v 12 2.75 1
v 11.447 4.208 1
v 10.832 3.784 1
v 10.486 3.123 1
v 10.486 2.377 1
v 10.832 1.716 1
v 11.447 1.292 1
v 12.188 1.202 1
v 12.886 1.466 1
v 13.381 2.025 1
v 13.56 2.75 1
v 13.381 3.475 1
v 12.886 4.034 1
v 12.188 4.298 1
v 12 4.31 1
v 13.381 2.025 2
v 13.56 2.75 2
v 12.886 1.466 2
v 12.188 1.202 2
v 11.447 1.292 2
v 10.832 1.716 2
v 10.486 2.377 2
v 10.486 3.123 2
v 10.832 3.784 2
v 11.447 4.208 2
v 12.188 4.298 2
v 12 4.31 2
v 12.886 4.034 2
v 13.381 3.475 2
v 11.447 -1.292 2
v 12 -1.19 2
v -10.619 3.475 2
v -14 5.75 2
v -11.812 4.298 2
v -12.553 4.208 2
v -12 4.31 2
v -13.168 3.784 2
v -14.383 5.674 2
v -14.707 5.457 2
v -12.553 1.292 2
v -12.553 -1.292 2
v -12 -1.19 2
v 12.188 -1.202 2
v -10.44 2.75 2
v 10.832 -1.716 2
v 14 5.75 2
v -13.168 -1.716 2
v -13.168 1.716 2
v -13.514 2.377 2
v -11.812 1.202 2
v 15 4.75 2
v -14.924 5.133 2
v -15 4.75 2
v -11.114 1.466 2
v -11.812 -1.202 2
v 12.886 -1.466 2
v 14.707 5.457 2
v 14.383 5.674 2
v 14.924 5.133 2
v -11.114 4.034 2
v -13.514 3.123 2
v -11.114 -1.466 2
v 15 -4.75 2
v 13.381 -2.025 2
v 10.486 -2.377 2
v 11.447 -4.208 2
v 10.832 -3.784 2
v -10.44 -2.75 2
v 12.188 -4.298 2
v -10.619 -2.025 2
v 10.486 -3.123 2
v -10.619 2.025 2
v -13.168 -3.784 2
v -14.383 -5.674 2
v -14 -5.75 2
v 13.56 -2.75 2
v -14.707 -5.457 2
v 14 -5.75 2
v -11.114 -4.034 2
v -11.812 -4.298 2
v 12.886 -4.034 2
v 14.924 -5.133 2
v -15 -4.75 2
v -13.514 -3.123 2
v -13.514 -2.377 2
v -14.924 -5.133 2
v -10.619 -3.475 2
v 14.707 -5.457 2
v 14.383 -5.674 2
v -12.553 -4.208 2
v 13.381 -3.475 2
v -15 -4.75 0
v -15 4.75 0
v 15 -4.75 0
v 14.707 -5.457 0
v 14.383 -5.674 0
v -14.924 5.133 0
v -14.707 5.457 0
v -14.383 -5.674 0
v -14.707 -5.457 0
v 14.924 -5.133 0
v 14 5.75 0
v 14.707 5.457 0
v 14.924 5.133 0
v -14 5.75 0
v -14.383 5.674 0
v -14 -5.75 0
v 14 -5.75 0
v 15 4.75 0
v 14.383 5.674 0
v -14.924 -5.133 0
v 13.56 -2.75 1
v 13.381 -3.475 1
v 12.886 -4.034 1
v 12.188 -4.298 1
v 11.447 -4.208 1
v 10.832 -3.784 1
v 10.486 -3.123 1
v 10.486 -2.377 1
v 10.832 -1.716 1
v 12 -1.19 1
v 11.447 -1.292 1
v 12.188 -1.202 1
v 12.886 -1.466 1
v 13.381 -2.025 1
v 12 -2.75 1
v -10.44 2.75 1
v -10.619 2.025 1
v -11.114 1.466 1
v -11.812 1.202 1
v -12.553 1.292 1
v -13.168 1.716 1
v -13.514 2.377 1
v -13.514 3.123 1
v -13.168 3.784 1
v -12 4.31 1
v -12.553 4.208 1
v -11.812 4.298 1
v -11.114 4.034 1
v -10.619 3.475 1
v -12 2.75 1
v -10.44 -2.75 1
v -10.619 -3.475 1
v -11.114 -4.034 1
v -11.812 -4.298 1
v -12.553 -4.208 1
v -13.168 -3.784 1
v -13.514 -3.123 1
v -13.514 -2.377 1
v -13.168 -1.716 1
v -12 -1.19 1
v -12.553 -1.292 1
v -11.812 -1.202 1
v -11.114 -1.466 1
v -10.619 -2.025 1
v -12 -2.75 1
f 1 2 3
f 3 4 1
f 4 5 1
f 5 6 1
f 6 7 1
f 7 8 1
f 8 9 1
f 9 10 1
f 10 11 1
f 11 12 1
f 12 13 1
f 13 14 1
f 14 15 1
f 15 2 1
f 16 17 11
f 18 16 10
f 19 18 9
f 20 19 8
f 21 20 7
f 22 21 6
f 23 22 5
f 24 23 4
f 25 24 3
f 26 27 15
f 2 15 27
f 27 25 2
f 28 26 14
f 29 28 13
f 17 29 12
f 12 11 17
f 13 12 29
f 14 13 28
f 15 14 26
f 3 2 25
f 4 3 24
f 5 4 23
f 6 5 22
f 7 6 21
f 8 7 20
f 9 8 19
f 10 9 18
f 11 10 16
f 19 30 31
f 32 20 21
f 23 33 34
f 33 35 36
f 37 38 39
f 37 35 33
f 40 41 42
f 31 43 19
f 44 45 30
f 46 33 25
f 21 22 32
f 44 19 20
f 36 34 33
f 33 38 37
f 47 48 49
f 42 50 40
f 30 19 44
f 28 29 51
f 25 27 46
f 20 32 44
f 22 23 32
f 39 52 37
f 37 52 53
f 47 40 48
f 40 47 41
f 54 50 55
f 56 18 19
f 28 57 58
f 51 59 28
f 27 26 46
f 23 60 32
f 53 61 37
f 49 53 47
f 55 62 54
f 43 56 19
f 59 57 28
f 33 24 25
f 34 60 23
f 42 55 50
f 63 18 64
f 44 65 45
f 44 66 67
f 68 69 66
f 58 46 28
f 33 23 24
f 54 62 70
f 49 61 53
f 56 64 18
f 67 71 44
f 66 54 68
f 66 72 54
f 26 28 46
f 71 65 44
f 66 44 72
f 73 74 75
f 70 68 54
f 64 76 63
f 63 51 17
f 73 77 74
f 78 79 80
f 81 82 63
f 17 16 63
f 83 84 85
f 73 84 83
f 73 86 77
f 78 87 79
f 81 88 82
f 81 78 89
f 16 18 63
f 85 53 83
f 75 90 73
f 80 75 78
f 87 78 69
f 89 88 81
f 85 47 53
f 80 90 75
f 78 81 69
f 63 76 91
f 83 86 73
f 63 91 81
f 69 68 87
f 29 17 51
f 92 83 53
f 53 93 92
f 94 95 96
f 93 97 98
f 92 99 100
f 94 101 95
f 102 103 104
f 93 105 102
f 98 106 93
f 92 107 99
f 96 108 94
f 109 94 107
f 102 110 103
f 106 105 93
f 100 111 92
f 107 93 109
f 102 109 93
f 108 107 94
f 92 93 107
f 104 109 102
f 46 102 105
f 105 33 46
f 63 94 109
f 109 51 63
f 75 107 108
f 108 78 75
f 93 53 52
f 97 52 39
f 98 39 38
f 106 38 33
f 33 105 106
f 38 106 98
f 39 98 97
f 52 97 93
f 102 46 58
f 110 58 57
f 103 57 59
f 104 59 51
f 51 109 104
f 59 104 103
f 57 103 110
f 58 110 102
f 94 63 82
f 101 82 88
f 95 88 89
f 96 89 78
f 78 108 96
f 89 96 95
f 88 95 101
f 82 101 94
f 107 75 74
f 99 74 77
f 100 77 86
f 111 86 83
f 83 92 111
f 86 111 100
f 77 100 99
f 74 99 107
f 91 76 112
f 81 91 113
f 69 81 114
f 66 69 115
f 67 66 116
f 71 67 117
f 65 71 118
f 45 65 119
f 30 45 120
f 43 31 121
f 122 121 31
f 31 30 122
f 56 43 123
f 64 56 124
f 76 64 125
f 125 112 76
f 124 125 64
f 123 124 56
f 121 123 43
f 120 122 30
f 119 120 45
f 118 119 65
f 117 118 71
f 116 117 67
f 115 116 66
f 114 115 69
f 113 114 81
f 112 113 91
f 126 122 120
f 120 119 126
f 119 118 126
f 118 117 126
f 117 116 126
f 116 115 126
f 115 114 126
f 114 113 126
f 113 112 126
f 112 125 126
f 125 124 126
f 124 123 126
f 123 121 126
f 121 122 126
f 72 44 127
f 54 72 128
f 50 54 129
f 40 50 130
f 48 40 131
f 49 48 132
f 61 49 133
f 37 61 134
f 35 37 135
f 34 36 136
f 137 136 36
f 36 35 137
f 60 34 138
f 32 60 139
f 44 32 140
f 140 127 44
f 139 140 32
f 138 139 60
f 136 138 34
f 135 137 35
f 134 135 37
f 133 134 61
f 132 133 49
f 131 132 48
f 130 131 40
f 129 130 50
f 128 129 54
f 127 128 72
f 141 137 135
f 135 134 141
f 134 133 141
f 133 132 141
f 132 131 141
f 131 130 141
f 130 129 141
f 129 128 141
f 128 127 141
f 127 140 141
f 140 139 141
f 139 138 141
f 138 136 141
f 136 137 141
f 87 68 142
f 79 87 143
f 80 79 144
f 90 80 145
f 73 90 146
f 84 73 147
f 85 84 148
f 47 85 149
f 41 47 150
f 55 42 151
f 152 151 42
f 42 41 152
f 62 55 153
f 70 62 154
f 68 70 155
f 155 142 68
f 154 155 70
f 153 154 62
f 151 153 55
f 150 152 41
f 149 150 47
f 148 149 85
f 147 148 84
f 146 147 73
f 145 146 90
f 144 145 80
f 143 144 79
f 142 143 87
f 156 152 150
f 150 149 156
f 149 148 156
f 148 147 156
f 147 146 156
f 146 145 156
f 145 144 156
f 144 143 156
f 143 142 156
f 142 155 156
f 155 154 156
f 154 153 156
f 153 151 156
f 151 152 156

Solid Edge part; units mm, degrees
sketch "Sketch1" plane through (0, 0, 0) normal (0, 0, 1) x (1, 0, 0)
  line L0 (-15, 5.75) -> (15, 5.75)
  line L1 (15, 5.75) -> (15, -5.75)
  line L2 (15, -5.75) -> (-15, -5.75)
  line L3 (-15, -5.75) -> (-15, 5.75)
  dimension "D1" = 30
  dimension "D2" = 11.5
extrude "Protrusion1" add sketch "Sketch1" along normal blind 2
fillet "Avrundningar_1" radius 1 4 edges at (-15, -5.75, 1) (15, -5.75, 1) (15, 5.75, 1) (-15, 5.75, 1)
sketch "Sketch2" plane through (0, 0, 2) normal (0, 0, 1) x (0, 1, 0)
  circle A0 centre (-2.75, 12) radius 1.5598
  circle A1 centre (2.75, 12) radius 1.5598
  circle A2 centre (-2.75, -12) radius 1.5598
  circle A3 centre (2.75, -12) radius 1.5598
  dimension "D1" = 3
  dimension "D2" = 3
  dimension "D3" = 3
  dimension "D4" = 3
  dimension "D5" = 3.1196
  dimension "D6" = 3.1196
  dimension "D7" = 3.1196
  dimension "D8" = 3.1196
extrude "Försänkningar_för_fjäder" cut sketch "Sketch2" against normal blind 1
